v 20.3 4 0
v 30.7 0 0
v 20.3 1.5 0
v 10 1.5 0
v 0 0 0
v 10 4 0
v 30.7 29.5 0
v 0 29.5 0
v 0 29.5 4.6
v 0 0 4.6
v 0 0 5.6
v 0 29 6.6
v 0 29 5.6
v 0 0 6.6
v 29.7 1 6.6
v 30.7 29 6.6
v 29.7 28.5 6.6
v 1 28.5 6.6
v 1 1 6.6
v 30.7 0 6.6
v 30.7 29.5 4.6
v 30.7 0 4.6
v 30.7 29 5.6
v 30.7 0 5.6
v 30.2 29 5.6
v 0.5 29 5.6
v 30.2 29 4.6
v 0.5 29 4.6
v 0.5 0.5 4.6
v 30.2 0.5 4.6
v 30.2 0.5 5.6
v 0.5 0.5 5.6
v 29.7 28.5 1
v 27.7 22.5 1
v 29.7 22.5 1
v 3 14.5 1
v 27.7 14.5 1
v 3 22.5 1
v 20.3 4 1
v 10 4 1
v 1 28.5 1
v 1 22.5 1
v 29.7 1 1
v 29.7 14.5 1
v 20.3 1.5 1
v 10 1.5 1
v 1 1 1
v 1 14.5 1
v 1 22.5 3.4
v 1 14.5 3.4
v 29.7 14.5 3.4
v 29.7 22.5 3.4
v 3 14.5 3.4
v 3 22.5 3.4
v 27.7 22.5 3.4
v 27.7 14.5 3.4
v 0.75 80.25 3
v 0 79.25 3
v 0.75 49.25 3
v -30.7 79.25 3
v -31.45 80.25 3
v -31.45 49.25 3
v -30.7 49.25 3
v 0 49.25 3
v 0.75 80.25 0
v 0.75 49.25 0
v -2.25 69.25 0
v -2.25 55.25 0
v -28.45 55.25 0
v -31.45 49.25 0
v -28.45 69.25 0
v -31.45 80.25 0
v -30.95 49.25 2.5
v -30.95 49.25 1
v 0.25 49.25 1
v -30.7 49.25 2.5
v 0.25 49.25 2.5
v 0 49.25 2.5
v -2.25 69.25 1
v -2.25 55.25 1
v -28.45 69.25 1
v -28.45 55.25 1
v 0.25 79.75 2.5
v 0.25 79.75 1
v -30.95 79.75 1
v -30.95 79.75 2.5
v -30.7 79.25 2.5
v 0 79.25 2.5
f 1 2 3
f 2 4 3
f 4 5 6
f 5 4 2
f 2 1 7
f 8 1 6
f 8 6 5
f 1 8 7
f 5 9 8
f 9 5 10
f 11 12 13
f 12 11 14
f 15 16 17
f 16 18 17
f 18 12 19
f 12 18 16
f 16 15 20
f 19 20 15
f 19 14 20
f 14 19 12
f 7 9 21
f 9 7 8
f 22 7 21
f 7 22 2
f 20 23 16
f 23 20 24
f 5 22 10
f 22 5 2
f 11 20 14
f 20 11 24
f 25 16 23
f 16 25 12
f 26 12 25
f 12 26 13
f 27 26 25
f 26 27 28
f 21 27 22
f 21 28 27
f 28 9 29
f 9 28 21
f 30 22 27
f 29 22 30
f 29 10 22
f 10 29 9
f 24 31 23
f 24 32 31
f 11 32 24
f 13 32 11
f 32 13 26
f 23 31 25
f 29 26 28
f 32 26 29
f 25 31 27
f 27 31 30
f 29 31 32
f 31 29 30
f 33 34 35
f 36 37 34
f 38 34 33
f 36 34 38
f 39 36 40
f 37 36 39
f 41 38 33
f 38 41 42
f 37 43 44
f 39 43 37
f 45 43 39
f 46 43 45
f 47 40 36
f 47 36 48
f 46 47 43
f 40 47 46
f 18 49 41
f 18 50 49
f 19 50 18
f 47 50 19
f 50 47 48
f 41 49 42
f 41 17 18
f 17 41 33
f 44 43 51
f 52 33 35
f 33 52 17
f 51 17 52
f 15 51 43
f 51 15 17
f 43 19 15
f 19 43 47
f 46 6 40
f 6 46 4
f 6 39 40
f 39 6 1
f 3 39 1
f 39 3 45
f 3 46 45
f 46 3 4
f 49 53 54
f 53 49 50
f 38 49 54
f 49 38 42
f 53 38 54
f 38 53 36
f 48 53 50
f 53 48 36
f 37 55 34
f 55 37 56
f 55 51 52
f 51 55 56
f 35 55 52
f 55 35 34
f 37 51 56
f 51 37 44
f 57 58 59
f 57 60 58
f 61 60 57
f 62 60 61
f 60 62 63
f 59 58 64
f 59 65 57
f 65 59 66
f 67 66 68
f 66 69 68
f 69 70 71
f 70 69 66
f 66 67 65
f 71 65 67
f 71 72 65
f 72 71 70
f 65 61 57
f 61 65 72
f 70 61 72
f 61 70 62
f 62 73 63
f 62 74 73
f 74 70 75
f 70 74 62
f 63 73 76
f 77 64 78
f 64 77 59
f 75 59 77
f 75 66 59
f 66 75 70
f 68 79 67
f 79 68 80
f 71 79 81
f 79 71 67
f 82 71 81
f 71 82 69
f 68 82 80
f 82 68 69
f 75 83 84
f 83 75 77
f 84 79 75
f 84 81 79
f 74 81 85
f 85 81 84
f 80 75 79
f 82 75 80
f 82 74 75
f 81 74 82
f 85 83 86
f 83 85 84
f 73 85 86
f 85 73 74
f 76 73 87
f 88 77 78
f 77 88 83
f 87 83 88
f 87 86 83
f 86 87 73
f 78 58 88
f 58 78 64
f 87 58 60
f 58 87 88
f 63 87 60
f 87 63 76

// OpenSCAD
screen_width = 28.7;
screen_height = 27.5;

wall_width = 1;
wall_height = 6.6;

floor_height = 1;

pinhole_height = 2.5;

module walls() {
    linear_extrude(wall_height)
        square([
            screen_width+wall_width*2, 
            screen_height+wall_width*2
        ]);
}

module base() {
    translate([0, 0, floor_height])
        linear_extrude(wall_height)
            translate([wall_width, wall_width]) 
                square([screen_width, screen_height], center = false);
}

module pinhole() {
    rotate([0, 0, 0]) 
        translate([8+wall_width*2, (wall_width + 0.5), -wall_width])
            linear_extrude(10) 
                square([10.3, pinhole_height]);
}

module stand() {
    stand_width = 2;
    stand_height = 8;
    
    translate([0, wall_width, 1])
        linear_extrude(2.4)
            square([stand_width, stand_height]);
}



module slide_cutout() {
    color("red")
        translate([-0.5, -0.5, wall_height-2])
            difference() {    
                linear_extrude(1) 
                    square([
                        screen_width+wall_width+2, 
                        screen_height+wall_width+2
                    ]);
                translate([1, 1, -1])
                linear_extrude(2.01)
                    square([
                        screen_width+wall_width, 
                        screen_height+wall_width
                    ]);
            }
}

module wall_cutout() {
    color("blue")
        translate([0, screen_height+wall_width+0.5, wall_height-wall_width])
            linear_extrude(1)
                square([screen_width+wall_width*2, 1]);
}

module case() {
    // Right stand
    translate([wall_width, 13.5, 0]) stand();

    // Left stand
    translate([screen_width-wall_width, 13.5, 0]) stand();
    
    difference() {        
        difference() {
            difference() {
                walls();
                wall_cutout();
            }
            slide_cutout();
        }
        base();
        pinhole();
    }
}

case();

lid_overhang = 1.5;
lid_width = (screen_width+wall_width*2)+lid_overhang;
lid_height = (screen_height+wall_width*2)+lid_overhang;

module lid() {   
        translate([-(lid_overhang/2), -(lid_overhang/2), 10])
            difference() {
                color("red")
                    linear_extrude(3)
                        square([
                            lid_width, 
                            lid_height
                        ]);
                color("pink")
                    translate([3, 6, -3])
                        linear_extrude(10)
                            square([lid_width-6, 14]);
            }
}

module lid_walls() {
    color("orange")
        translate([0.5, 0, 0])
        translate([-(lid_overhang/2), -(lid_overhang/2), 10])
            linear_extrude(2)
                square([
                    lid_width-1,
                    lid_height-0.5,
                ]);
    
}

module lid_lip() {
    translate([-0.75, -0.75, 10])
        difference() {
            color("blue")
                linear_extrude(0.5)
                    square([
                        lid_width,
                        lid_height
                    ]);
            color("green")
                translate([0.75, 0, 0])
                    linear_extrude(0.5)
                        square([
                            lid_width-1.5,
                            lid_height-1
                        ]);
        }
}

rotate([0, 180, 0])
    translate([0, 50, -13])
        union() {
            difference() {
                lid();
                lid_walls();
            }
            lid_lip();
        }
